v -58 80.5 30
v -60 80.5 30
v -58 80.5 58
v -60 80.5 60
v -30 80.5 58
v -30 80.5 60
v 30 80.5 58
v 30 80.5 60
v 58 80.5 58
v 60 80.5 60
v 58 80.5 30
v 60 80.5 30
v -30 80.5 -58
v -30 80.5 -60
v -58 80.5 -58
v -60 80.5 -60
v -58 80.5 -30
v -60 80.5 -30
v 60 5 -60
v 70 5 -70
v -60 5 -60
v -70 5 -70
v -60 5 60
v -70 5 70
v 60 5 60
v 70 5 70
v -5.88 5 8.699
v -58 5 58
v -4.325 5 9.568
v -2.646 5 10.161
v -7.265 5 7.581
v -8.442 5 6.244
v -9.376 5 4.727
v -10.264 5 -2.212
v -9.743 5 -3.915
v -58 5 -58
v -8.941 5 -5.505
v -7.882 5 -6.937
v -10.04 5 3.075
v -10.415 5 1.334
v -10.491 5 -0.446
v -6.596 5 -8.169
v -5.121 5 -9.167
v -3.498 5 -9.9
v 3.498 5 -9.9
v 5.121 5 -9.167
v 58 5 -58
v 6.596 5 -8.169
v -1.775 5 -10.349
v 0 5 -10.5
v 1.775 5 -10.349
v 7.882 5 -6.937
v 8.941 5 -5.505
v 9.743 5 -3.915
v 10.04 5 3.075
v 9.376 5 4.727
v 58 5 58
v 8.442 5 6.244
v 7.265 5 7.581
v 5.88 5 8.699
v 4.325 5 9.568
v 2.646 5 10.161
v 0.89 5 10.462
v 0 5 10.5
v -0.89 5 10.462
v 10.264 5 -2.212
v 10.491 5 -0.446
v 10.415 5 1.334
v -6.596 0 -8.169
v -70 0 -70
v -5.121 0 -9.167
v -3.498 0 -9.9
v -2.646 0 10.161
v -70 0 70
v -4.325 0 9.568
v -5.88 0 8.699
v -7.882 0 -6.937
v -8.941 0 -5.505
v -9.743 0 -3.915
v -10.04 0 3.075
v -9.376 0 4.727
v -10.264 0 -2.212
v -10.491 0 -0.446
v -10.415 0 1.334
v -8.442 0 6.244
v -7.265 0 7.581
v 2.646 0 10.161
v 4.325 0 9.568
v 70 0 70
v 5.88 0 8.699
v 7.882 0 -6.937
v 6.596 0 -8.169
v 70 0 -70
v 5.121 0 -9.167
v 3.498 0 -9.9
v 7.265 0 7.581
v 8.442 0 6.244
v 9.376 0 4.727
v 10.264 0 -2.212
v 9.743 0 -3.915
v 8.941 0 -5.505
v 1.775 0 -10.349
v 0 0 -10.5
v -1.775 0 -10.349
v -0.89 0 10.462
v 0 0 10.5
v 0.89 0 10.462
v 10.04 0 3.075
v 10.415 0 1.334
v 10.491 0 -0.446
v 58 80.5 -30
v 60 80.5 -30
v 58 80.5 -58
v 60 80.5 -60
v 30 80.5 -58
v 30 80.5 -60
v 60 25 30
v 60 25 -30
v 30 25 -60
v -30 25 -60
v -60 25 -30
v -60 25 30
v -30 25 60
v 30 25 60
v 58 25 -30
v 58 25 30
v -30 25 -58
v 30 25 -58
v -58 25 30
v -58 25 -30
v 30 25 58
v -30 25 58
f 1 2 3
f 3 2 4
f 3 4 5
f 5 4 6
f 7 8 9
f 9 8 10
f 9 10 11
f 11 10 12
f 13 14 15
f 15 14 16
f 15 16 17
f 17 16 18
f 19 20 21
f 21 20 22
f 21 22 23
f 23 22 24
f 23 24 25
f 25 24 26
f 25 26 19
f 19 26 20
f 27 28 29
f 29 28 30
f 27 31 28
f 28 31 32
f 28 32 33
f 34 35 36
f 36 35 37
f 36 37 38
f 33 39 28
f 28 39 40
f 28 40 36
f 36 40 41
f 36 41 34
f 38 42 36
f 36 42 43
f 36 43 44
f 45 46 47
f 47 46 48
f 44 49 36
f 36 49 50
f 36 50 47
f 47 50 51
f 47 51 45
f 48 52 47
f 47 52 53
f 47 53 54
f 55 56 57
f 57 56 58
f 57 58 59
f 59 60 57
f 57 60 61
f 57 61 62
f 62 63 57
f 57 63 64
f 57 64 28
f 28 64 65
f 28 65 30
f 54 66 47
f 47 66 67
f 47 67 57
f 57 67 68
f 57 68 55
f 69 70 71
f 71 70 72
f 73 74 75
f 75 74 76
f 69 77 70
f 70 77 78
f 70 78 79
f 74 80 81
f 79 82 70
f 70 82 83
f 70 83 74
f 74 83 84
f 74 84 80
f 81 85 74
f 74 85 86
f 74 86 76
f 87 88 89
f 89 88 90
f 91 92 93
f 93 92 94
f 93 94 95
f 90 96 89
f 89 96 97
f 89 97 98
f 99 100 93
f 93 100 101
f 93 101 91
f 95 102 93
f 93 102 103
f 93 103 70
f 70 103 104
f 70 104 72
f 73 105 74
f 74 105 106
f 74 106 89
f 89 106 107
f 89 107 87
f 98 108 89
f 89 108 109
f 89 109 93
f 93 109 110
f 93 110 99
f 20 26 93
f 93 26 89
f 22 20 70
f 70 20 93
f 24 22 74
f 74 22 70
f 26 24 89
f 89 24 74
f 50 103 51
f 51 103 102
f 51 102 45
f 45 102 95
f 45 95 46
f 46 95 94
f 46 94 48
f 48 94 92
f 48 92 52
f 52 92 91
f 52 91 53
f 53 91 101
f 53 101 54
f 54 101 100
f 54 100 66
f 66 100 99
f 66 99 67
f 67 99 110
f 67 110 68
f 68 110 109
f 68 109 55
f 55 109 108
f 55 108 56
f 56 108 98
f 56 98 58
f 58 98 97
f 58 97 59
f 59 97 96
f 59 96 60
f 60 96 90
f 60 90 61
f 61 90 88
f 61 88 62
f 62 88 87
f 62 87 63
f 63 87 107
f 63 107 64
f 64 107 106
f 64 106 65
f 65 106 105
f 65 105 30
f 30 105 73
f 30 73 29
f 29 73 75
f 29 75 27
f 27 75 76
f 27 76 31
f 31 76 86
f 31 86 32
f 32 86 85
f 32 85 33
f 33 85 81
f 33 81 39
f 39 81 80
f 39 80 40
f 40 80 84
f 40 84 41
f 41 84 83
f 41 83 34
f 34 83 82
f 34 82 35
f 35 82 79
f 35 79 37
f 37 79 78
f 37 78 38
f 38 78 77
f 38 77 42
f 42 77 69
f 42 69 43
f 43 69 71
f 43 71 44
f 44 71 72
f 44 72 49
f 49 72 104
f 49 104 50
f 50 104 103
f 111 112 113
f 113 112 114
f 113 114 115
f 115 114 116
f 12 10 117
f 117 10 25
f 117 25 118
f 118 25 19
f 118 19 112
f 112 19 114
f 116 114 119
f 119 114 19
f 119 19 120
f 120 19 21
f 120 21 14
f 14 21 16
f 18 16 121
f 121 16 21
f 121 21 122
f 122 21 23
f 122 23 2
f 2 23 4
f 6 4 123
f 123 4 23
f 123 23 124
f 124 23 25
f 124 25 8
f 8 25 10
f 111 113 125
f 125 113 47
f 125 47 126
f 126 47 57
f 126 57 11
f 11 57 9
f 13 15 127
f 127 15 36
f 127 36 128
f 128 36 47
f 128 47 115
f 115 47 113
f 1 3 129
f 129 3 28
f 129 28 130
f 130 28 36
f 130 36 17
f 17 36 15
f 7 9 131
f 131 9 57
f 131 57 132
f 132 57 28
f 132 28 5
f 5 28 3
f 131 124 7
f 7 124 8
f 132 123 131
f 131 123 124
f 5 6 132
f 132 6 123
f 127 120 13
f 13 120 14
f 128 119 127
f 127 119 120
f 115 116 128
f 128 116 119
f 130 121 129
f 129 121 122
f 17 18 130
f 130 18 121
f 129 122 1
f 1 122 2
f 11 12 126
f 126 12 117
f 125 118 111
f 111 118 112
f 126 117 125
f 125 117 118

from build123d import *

# Parameters (mm, degrees)
SKETCH1_W               = 140
SKETCH1_H               = 140
SKETCH1_R               = 10.5
BOSS_EXTRUDE1_DEPTH     = 5
SKETCH2_W               = 120
SKETCH2_H               = 120
SKETCH2_W_2             = 116
SKETCH2_H_2             = 116
BOSS_EXTRUDE2_DEPTH     = 75.5
CUT_EXTRUDE1_DEPTH      = 128.594082935
CUT_EXTRUDE1_DEPTH_BACK = 128.594082935
SKETCH4_W               = 60
SKETCH4_H               = 55.5
CUT_EXTRUDE2_DEPTH      = 128.594082935
CUT_EXTRUDE2_DEPTH_BACK = 128.594082935
SKETCH6_W               = 60
SKETCH6_H               = 55.5


with BuildPart() as part:
    # Sketch1 → Boss-Extrude1 (new body)
    with BuildSketch(Plane(origin=(0, 0, 0), x_dir=(1, 0, 0), z_dir=(0, 1, 0))):
        Rectangle(SKETCH1_W, SKETCH1_H)
        with Locations(Location((0, 0, 0), (0, 0, 270))):
            Circle(SKETCH1_R, mode=Mode.SUBTRACT)
    extrude(amount=BOSS_EXTRUDE1_DEPTH)

    # Sketch2 → Boss-Extrude2 (add)
    with BuildSketch(Plane(origin=(0, 5, 0), x_dir=(1, 0, 0), z_dir=(0, 1, 0))):
        Rectangle(SKETCH2_W, SKETCH2_H)
        Rectangle(SKETCH2_W_2, SKETCH2_H_2, mode=Mode.SUBTRACT)
    extrude(amount=BOSS_EXTRUDE2_DEPTH)

    # Sketch4 → Cut-Extrude1 (cut, two sides: drawn at the far end of the back side and taken through both)
    with BuildSketch(Plane(origin=(0, 0, 0), x_dir=(-1, 0, 0), z_dir=(0, 0, -1)).offset(-CUT_EXTRUDE1_DEPTH_BACK)):
        with Locations((0, 52.75)):
            Rectangle(SKETCH4_W, SKETCH4_H)
    extrude(amount=CUT_EXTRUDE1_DEPTH + CUT_EXTRUDE1_DEPTH_BACK, mode=Mode.SUBTRACT)

    # Sketch6 → Cut-Extrude2 (cut, two sides: drawn at the far end of the back side and taken through both)
    with BuildSketch(Plane(origin=(0, 0, 0), x_dir=(0, 0, -1), z_dir=(1, 0, 0)).offset(-CUT_EXTRUDE2_DEPTH_BACK)):
        with Locations((0, 52.75)):
            Rectangle(SKETCH6_W, SKETCH6_H)
    extrude(amount=CUT_EXTRUDE2_DEPTH + CUT_EXTRUDE2_DEPTH_BACK, mode=Mode.SUBTRACT)


solid = part.part
